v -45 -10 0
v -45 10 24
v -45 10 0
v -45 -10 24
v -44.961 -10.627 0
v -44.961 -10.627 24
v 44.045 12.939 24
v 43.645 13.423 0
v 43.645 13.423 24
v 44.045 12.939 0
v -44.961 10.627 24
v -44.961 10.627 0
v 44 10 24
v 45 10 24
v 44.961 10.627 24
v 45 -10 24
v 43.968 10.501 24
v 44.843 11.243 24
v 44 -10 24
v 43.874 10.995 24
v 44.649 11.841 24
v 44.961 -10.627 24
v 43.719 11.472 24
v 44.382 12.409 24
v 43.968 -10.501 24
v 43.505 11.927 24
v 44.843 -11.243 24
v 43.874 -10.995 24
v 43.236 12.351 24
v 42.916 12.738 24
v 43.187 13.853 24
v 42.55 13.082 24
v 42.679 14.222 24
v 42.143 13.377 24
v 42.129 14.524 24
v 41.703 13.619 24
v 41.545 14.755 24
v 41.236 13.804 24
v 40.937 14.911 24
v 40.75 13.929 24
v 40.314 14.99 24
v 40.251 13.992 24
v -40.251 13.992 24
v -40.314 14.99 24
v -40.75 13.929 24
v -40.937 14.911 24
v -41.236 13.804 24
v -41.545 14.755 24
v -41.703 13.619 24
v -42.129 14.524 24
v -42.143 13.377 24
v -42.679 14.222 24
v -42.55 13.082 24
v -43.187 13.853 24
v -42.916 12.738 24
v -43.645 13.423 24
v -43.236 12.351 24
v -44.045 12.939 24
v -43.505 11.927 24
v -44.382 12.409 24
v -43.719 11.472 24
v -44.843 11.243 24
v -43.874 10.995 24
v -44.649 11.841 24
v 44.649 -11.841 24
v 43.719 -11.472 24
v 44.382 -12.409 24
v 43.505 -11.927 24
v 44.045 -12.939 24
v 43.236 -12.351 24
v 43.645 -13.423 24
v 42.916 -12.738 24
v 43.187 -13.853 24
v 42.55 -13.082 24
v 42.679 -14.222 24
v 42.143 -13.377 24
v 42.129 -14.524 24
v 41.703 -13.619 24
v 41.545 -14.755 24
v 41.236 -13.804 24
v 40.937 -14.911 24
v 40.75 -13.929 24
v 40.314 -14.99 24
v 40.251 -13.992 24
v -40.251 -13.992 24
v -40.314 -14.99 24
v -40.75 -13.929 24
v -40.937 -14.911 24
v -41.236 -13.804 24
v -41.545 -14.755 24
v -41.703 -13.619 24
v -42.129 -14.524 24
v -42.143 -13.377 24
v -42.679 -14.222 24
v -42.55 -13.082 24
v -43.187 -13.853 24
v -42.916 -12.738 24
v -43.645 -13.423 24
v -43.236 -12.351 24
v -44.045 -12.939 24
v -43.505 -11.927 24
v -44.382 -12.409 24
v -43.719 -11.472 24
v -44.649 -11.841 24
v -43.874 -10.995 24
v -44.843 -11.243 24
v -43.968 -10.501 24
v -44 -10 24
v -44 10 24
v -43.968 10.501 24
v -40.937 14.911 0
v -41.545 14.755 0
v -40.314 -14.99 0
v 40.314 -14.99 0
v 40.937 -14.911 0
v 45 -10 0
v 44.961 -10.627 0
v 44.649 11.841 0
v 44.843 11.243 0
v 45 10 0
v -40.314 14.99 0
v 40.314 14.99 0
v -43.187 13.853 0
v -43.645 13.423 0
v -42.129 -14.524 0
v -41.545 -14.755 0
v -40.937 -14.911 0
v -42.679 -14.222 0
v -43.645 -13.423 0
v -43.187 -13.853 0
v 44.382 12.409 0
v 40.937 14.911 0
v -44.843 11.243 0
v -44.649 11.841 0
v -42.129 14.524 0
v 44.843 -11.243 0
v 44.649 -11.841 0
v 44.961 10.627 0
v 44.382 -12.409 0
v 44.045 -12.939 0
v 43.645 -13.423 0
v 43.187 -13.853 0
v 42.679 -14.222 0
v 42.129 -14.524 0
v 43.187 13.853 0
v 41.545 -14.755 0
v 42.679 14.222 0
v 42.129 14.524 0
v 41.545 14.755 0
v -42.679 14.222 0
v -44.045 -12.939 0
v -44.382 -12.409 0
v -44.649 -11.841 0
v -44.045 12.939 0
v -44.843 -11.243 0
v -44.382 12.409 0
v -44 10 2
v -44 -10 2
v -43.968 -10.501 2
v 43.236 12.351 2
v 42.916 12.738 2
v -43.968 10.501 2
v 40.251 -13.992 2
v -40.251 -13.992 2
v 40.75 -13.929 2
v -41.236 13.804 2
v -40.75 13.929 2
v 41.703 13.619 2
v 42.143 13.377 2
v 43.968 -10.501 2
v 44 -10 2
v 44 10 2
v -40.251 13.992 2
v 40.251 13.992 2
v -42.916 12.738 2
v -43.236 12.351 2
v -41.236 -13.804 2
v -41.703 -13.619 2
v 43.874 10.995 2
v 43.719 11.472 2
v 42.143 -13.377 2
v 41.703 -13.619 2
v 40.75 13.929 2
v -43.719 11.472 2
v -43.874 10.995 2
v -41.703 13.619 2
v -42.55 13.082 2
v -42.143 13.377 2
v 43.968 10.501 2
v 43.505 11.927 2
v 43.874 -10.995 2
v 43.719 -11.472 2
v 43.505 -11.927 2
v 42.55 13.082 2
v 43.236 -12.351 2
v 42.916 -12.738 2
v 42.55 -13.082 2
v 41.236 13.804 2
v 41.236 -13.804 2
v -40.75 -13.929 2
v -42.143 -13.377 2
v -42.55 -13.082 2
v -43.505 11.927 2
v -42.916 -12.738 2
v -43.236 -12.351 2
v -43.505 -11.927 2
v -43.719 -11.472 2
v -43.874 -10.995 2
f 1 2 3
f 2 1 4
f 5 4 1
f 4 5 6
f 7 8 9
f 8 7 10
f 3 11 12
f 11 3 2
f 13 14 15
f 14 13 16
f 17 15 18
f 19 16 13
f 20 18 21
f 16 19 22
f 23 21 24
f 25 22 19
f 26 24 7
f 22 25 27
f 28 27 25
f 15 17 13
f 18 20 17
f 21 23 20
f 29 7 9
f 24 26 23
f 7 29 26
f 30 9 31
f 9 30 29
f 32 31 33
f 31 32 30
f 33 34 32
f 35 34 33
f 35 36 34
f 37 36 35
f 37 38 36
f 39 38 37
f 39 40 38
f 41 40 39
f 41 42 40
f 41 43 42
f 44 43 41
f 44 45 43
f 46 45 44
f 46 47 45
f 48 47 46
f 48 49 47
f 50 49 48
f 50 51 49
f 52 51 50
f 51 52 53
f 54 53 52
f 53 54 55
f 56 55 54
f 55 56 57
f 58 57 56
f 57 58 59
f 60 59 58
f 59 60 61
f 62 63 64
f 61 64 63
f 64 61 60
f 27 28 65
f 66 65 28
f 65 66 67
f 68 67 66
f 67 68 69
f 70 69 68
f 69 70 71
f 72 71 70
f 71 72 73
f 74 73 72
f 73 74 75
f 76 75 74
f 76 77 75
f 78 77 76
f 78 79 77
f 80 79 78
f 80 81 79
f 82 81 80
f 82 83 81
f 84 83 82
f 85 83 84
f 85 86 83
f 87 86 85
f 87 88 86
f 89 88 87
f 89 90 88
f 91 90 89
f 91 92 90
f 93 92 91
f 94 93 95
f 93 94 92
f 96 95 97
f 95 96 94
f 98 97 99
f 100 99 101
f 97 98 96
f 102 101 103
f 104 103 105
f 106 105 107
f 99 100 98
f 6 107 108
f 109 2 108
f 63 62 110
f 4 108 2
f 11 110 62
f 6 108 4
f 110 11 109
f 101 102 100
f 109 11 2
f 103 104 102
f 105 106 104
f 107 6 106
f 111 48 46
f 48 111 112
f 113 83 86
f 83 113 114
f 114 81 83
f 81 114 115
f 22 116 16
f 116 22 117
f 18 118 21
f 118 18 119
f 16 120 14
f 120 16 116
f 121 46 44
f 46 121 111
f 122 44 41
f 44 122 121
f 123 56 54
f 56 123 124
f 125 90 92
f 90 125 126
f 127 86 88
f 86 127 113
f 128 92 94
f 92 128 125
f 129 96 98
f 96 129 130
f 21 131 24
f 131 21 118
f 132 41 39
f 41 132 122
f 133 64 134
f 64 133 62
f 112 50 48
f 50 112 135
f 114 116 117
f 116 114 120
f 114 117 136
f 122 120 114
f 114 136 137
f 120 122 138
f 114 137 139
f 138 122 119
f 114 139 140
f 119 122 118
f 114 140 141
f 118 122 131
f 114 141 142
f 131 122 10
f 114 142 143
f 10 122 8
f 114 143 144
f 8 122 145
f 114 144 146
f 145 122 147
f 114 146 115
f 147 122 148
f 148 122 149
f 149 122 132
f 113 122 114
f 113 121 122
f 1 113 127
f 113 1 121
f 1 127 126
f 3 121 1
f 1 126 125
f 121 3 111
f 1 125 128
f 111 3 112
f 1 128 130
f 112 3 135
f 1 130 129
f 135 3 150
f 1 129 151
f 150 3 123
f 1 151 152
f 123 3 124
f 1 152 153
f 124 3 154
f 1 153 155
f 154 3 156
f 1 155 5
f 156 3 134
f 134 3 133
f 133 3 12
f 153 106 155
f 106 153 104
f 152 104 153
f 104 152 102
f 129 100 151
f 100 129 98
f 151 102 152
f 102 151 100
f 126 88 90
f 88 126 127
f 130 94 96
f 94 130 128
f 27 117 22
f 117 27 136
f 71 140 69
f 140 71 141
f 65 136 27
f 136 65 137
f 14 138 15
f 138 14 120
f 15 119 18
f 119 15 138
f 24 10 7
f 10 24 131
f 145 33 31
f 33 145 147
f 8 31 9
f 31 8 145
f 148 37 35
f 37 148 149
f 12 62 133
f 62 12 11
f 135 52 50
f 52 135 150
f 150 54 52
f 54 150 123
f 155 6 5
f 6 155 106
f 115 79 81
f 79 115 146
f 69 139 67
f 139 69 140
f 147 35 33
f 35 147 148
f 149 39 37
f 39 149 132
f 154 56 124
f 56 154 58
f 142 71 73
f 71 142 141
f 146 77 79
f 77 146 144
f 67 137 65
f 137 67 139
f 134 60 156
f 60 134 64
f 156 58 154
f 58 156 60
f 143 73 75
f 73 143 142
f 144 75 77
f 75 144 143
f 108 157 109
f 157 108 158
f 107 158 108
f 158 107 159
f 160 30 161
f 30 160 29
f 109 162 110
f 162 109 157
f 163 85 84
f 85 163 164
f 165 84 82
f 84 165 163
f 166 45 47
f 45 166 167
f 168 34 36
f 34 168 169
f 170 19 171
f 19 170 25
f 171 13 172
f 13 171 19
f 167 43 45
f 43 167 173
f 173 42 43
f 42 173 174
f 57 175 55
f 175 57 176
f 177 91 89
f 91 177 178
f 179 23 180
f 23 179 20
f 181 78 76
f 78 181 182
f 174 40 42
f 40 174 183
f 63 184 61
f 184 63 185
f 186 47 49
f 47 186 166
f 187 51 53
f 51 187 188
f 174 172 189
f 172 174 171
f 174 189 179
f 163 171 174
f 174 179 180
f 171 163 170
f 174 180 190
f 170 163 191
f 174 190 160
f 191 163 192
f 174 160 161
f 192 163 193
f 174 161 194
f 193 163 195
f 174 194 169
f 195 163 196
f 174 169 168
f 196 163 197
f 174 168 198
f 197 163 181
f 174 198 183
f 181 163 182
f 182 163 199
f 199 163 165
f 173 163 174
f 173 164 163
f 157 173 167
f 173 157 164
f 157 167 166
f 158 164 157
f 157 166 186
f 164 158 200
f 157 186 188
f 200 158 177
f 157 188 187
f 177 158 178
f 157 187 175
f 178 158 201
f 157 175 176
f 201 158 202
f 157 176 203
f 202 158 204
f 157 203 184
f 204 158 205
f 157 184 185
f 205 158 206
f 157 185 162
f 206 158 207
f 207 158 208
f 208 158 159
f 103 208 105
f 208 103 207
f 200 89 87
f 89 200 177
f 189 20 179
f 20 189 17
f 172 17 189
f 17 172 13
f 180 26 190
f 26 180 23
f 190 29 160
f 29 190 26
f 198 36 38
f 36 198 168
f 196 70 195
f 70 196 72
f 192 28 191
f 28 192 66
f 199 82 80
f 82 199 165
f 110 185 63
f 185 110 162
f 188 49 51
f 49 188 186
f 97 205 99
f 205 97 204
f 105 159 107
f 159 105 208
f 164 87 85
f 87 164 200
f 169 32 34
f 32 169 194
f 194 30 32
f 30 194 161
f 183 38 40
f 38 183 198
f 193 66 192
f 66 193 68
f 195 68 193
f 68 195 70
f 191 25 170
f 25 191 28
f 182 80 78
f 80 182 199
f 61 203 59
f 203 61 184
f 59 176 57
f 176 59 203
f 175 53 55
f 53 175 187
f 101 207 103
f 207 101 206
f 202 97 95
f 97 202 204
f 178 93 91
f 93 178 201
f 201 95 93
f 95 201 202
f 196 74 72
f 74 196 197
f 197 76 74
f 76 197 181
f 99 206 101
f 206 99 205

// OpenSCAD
$fn = 50;


difference() {
	union() {
		hull() {
			translate(v = [-40.0000000000, 10.0000000000, 0]) {
				cylinder(h = 24, r = 5);
			}
			translate(v = [40.0000000000, 10.0000000000, 0]) {
				cylinder(h = 24, r = 5);
			}
			translate(v = [-40.0000000000, -10.0000000000, 0]) {
				cylinder(h = 24, r = 5);
			}
			translate(v = [40.0000000000, -10.0000000000, 0]) {
				cylinder(h = 24, r = 5);
			}
		}
	}
	union() {
		translate(v = [0, 0, 2]) {
			hull() {
				translate(v = [-40.0000000000, 10.0000000000, 0]) {
					cylinder(h = 22, r = 4);
				}
				translate(v = [40.0000000000, 10.0000000000, 0]) {
					cylinder(h = 22, r = 4);
				}
				translate(v = [-40.0000000000, -10.0000000000, 0]) {
					cylinder(h = 22, r = 4);
				}
				translate(v = [40.0000000000, -10.0000000000, 0]) {
					cylinder(h = 22, r = 4);
				}
			}
		}
	}
}
